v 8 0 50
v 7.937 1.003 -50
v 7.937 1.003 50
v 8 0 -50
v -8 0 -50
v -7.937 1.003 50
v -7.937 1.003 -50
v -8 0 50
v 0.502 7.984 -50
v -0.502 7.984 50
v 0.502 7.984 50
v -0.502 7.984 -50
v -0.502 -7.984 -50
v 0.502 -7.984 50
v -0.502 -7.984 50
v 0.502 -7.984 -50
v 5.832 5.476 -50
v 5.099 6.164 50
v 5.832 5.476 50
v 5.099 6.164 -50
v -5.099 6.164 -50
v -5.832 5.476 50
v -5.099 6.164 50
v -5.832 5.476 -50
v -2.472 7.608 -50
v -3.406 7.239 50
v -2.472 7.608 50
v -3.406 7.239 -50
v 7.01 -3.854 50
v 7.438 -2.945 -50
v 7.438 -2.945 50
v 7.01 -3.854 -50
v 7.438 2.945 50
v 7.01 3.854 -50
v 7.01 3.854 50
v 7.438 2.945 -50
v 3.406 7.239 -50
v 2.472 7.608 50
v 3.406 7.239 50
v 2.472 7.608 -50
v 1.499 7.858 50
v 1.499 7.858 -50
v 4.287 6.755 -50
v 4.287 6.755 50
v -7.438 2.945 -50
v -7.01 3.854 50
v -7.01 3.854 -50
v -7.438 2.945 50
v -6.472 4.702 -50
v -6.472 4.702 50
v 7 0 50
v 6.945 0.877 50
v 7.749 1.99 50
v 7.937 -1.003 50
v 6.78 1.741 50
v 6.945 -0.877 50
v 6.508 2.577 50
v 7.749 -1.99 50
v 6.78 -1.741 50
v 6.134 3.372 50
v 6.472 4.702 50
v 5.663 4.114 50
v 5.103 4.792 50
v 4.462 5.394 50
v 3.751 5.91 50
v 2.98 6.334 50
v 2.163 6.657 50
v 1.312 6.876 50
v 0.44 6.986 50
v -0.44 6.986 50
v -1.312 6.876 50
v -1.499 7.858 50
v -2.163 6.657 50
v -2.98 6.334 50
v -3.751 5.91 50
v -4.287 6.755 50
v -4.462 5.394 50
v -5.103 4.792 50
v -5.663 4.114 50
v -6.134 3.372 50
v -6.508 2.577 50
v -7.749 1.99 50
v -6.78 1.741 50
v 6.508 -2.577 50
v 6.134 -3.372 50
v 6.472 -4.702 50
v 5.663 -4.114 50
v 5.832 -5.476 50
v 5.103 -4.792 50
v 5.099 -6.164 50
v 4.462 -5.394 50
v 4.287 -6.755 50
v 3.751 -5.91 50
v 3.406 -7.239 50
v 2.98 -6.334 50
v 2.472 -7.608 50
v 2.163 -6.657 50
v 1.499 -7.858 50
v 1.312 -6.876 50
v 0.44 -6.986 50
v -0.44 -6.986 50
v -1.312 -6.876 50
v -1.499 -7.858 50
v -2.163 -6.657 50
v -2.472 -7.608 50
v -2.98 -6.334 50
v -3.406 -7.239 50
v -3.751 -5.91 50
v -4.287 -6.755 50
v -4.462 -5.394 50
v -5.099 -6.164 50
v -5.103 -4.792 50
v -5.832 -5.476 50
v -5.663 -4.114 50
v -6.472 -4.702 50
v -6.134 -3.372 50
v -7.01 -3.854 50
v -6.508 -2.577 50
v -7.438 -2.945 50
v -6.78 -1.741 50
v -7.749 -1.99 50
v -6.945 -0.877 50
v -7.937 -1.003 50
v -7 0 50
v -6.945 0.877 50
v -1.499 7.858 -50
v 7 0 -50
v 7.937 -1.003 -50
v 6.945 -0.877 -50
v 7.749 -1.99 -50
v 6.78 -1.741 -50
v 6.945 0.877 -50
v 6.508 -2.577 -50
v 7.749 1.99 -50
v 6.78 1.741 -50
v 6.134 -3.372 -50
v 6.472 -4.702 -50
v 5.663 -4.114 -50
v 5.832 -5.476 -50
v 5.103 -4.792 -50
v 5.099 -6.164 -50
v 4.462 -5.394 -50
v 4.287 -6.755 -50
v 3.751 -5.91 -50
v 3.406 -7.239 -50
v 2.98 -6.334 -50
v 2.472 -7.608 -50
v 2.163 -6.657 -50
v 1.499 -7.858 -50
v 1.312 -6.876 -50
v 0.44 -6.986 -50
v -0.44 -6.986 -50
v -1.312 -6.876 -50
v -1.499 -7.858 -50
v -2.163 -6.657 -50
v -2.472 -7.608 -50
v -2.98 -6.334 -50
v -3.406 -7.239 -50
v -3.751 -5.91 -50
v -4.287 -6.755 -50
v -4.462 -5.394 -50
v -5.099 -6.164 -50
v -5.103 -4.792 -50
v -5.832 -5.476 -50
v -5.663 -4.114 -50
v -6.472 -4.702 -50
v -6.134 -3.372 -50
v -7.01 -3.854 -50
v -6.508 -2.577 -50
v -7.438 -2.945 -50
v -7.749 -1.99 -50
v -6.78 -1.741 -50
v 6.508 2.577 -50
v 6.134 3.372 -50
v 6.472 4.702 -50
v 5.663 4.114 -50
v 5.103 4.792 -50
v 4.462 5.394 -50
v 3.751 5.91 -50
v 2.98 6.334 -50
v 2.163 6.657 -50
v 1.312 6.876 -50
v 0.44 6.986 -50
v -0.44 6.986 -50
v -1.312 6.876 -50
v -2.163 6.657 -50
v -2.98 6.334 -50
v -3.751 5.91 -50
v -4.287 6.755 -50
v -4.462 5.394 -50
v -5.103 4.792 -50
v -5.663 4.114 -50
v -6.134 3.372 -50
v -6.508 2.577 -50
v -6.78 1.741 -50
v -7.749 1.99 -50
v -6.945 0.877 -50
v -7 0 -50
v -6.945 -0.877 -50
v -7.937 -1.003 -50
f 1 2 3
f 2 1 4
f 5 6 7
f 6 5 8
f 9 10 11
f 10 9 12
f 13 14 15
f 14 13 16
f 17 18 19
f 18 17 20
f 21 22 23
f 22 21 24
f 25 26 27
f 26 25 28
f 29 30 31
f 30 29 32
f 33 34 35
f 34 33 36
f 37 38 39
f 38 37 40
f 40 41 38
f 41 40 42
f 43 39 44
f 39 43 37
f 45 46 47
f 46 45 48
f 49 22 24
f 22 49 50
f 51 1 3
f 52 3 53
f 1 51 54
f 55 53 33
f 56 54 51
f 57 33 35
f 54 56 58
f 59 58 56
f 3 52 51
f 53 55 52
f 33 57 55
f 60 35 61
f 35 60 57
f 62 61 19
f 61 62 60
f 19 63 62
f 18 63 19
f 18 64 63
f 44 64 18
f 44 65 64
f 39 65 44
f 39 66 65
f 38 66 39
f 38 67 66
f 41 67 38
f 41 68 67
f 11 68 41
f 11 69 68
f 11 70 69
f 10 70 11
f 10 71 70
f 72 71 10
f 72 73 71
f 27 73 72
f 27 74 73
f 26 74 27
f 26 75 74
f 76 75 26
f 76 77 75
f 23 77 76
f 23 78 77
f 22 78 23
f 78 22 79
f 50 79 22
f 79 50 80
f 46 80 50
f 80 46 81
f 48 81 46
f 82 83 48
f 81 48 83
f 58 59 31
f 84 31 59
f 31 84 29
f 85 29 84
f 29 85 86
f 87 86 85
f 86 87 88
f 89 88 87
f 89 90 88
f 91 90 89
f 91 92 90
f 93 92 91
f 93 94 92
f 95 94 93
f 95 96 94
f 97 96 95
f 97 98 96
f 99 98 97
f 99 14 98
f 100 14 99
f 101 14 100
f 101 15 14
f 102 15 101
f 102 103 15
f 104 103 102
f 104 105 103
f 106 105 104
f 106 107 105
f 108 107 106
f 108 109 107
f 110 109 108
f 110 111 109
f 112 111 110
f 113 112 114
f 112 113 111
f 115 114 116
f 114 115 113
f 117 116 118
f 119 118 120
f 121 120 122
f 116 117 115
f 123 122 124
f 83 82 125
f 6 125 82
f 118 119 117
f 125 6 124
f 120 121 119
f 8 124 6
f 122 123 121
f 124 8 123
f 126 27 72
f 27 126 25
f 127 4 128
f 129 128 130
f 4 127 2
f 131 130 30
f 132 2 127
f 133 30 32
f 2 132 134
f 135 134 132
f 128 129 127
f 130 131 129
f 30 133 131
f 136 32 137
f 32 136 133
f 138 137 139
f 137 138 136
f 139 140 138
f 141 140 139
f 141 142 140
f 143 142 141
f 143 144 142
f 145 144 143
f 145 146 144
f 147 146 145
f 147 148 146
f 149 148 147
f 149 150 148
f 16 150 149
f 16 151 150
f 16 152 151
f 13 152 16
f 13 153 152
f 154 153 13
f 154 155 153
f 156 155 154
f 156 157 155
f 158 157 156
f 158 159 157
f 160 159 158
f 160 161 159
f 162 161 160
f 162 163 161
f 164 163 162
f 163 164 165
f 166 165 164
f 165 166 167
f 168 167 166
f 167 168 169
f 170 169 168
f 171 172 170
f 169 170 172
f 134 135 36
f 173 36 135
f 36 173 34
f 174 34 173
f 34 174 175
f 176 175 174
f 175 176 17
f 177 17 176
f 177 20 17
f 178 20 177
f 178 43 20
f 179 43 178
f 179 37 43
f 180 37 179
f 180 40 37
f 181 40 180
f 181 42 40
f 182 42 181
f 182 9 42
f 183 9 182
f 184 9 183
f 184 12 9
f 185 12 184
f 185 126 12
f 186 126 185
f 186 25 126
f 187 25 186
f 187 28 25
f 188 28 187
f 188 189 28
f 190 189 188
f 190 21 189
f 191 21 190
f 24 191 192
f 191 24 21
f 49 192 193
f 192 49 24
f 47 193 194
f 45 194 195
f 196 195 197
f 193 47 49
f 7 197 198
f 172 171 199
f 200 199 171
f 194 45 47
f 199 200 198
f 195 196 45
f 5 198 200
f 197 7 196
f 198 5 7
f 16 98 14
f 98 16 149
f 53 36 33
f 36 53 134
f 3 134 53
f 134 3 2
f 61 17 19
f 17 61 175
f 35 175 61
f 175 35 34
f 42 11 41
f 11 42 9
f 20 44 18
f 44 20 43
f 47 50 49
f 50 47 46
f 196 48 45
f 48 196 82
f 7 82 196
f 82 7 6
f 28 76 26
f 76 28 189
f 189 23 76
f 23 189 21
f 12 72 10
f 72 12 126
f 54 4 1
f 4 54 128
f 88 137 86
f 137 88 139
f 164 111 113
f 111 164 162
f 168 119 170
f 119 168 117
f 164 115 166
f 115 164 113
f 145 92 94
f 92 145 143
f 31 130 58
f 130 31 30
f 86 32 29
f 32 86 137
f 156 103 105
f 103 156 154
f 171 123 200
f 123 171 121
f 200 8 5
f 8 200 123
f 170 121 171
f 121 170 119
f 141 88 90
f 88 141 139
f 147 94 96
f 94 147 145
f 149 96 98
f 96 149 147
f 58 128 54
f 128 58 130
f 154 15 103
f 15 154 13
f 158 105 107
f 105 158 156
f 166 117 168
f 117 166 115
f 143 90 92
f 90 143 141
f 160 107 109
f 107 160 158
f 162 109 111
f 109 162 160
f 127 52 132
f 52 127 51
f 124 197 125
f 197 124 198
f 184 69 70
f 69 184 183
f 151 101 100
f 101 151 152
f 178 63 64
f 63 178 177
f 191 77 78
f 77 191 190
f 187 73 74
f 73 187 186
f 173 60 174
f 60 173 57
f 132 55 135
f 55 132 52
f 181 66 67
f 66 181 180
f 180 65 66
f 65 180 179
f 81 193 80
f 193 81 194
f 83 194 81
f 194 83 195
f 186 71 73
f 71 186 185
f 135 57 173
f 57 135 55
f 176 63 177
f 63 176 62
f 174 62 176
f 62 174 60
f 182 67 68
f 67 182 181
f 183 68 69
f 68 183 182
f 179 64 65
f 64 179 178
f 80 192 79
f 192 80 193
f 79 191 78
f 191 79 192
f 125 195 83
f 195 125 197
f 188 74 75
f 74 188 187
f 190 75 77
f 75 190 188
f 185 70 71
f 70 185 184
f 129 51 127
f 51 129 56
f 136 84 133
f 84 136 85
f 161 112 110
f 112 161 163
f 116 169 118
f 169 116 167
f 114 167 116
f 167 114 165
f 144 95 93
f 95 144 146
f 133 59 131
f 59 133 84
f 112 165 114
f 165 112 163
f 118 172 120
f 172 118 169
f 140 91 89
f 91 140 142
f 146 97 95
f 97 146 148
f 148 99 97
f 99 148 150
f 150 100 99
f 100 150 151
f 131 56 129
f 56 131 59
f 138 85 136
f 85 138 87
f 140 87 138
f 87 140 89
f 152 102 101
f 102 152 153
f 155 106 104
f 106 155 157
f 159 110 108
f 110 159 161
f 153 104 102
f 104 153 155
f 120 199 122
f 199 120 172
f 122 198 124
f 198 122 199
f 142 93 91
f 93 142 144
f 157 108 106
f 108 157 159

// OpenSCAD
$fn = 50;


difference() {
	union() {
		translate(v = [0, 0, -50.0000000000]) {
			cylinder(h = 100, r = 8.0000000000);
		}
	}
	union() {
		translate(v = [0, 0, -100.0000000000]) {
			cylinder(h = 200, r = 7);
		}
	}
}
